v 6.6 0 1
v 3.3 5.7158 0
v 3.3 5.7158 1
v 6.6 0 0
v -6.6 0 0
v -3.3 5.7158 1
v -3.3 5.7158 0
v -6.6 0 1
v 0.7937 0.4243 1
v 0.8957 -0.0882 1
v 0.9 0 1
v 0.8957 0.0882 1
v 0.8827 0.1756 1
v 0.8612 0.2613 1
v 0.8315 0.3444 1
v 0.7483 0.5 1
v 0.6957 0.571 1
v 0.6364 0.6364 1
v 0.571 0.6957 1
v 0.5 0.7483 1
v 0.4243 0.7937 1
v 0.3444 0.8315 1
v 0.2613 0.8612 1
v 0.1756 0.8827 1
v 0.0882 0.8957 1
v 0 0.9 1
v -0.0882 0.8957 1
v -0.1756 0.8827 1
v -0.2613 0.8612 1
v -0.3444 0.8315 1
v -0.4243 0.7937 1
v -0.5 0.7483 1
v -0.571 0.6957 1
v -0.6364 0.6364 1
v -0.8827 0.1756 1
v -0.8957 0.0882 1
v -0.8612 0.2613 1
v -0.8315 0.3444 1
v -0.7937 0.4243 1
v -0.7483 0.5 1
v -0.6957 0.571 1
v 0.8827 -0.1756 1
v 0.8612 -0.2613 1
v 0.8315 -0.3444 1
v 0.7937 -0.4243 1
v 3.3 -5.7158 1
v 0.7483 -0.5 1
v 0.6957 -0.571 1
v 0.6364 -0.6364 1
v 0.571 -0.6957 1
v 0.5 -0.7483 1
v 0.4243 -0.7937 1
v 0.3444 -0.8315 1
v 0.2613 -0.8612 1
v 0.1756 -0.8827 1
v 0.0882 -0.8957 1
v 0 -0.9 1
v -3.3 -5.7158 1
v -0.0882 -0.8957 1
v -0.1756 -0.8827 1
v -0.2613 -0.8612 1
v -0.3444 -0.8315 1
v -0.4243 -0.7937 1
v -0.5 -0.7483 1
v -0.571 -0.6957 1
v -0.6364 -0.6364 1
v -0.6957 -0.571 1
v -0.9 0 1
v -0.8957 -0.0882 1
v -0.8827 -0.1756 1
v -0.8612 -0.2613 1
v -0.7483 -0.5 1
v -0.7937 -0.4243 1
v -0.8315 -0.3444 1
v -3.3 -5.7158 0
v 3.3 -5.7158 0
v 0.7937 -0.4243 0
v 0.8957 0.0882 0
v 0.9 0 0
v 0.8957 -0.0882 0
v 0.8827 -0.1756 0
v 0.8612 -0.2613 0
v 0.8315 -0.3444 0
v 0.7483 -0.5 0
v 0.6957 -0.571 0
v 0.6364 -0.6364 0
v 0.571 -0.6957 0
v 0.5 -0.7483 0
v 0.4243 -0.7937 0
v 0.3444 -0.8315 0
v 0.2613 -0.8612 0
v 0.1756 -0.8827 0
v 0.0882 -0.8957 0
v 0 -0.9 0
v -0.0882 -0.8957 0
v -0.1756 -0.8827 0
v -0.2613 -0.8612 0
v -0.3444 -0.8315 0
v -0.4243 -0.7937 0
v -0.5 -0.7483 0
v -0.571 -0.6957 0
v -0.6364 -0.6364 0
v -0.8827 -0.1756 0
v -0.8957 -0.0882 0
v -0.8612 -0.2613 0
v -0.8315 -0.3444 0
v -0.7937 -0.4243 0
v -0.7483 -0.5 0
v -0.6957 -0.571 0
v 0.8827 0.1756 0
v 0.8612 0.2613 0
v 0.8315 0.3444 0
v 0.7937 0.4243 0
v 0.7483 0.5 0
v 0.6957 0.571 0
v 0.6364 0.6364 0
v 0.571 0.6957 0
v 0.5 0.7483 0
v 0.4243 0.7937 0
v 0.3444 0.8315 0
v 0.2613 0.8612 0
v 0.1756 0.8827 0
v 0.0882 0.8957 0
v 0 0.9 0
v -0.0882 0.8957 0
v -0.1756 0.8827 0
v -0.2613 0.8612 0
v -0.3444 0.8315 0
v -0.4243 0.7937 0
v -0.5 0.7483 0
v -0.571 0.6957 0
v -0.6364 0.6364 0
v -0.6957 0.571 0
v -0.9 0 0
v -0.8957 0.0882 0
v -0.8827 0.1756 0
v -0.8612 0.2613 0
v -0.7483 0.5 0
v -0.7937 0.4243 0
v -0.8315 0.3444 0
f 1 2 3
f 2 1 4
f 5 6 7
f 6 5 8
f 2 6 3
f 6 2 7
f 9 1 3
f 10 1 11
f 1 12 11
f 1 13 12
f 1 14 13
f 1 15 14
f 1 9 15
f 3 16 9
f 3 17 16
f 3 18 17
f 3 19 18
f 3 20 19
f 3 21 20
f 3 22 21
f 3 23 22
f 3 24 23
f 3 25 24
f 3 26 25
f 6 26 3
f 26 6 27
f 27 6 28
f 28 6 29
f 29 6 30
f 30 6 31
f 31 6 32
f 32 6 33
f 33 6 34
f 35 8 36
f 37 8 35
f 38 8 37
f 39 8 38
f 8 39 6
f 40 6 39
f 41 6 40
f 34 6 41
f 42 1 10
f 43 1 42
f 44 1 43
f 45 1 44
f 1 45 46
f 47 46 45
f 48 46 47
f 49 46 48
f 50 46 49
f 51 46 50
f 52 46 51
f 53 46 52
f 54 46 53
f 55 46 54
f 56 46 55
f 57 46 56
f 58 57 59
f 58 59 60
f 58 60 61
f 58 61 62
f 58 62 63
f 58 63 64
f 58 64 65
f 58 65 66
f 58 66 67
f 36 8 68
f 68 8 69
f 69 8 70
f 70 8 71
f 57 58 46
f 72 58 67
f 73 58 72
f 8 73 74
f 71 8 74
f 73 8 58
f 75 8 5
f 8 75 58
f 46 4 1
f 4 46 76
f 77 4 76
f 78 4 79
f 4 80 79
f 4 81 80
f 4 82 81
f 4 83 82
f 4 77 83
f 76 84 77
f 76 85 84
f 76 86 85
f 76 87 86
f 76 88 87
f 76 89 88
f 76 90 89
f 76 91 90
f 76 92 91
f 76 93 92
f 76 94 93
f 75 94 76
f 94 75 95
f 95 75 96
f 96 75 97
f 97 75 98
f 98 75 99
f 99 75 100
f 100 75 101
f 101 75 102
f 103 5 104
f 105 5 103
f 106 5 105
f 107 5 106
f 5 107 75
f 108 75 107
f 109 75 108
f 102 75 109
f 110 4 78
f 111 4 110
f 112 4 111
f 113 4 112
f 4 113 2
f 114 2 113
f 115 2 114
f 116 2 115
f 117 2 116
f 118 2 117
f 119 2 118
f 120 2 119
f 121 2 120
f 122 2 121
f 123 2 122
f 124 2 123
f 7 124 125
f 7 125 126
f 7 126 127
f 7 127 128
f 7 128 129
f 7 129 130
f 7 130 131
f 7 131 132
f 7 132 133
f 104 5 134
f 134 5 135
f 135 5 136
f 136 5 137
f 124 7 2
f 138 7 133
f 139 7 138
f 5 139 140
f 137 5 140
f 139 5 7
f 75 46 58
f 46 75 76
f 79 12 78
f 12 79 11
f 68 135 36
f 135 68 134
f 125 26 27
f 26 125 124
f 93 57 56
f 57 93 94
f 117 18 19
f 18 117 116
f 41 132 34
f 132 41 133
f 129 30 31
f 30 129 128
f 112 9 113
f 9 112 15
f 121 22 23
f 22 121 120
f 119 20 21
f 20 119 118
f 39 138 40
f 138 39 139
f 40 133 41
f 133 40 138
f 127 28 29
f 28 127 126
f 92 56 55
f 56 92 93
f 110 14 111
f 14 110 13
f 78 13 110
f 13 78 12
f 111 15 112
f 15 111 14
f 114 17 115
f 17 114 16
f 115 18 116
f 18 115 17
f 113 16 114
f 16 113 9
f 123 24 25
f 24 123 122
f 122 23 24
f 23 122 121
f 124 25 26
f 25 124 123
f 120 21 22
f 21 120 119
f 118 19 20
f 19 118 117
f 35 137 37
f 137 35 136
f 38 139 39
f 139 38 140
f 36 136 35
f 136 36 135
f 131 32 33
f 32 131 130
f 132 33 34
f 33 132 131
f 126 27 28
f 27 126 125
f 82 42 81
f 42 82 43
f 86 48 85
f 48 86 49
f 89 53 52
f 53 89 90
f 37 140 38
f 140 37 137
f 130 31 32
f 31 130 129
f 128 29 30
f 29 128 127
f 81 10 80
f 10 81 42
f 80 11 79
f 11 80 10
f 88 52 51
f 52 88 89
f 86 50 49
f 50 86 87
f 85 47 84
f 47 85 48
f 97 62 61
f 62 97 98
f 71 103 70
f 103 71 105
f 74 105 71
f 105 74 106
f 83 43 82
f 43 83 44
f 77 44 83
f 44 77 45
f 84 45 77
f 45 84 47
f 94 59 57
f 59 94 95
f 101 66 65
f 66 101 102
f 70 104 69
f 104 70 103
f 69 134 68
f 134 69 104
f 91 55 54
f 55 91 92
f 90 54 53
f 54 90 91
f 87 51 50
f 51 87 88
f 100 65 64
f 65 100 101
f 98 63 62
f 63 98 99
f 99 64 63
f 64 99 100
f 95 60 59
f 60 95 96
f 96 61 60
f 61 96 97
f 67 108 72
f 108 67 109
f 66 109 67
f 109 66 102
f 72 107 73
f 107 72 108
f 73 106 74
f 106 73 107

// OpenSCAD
difference() {
cylinder(r=6.6, h=1, $fn=6);
cylinder(r=0.9, h=10, $fn=64);
}
